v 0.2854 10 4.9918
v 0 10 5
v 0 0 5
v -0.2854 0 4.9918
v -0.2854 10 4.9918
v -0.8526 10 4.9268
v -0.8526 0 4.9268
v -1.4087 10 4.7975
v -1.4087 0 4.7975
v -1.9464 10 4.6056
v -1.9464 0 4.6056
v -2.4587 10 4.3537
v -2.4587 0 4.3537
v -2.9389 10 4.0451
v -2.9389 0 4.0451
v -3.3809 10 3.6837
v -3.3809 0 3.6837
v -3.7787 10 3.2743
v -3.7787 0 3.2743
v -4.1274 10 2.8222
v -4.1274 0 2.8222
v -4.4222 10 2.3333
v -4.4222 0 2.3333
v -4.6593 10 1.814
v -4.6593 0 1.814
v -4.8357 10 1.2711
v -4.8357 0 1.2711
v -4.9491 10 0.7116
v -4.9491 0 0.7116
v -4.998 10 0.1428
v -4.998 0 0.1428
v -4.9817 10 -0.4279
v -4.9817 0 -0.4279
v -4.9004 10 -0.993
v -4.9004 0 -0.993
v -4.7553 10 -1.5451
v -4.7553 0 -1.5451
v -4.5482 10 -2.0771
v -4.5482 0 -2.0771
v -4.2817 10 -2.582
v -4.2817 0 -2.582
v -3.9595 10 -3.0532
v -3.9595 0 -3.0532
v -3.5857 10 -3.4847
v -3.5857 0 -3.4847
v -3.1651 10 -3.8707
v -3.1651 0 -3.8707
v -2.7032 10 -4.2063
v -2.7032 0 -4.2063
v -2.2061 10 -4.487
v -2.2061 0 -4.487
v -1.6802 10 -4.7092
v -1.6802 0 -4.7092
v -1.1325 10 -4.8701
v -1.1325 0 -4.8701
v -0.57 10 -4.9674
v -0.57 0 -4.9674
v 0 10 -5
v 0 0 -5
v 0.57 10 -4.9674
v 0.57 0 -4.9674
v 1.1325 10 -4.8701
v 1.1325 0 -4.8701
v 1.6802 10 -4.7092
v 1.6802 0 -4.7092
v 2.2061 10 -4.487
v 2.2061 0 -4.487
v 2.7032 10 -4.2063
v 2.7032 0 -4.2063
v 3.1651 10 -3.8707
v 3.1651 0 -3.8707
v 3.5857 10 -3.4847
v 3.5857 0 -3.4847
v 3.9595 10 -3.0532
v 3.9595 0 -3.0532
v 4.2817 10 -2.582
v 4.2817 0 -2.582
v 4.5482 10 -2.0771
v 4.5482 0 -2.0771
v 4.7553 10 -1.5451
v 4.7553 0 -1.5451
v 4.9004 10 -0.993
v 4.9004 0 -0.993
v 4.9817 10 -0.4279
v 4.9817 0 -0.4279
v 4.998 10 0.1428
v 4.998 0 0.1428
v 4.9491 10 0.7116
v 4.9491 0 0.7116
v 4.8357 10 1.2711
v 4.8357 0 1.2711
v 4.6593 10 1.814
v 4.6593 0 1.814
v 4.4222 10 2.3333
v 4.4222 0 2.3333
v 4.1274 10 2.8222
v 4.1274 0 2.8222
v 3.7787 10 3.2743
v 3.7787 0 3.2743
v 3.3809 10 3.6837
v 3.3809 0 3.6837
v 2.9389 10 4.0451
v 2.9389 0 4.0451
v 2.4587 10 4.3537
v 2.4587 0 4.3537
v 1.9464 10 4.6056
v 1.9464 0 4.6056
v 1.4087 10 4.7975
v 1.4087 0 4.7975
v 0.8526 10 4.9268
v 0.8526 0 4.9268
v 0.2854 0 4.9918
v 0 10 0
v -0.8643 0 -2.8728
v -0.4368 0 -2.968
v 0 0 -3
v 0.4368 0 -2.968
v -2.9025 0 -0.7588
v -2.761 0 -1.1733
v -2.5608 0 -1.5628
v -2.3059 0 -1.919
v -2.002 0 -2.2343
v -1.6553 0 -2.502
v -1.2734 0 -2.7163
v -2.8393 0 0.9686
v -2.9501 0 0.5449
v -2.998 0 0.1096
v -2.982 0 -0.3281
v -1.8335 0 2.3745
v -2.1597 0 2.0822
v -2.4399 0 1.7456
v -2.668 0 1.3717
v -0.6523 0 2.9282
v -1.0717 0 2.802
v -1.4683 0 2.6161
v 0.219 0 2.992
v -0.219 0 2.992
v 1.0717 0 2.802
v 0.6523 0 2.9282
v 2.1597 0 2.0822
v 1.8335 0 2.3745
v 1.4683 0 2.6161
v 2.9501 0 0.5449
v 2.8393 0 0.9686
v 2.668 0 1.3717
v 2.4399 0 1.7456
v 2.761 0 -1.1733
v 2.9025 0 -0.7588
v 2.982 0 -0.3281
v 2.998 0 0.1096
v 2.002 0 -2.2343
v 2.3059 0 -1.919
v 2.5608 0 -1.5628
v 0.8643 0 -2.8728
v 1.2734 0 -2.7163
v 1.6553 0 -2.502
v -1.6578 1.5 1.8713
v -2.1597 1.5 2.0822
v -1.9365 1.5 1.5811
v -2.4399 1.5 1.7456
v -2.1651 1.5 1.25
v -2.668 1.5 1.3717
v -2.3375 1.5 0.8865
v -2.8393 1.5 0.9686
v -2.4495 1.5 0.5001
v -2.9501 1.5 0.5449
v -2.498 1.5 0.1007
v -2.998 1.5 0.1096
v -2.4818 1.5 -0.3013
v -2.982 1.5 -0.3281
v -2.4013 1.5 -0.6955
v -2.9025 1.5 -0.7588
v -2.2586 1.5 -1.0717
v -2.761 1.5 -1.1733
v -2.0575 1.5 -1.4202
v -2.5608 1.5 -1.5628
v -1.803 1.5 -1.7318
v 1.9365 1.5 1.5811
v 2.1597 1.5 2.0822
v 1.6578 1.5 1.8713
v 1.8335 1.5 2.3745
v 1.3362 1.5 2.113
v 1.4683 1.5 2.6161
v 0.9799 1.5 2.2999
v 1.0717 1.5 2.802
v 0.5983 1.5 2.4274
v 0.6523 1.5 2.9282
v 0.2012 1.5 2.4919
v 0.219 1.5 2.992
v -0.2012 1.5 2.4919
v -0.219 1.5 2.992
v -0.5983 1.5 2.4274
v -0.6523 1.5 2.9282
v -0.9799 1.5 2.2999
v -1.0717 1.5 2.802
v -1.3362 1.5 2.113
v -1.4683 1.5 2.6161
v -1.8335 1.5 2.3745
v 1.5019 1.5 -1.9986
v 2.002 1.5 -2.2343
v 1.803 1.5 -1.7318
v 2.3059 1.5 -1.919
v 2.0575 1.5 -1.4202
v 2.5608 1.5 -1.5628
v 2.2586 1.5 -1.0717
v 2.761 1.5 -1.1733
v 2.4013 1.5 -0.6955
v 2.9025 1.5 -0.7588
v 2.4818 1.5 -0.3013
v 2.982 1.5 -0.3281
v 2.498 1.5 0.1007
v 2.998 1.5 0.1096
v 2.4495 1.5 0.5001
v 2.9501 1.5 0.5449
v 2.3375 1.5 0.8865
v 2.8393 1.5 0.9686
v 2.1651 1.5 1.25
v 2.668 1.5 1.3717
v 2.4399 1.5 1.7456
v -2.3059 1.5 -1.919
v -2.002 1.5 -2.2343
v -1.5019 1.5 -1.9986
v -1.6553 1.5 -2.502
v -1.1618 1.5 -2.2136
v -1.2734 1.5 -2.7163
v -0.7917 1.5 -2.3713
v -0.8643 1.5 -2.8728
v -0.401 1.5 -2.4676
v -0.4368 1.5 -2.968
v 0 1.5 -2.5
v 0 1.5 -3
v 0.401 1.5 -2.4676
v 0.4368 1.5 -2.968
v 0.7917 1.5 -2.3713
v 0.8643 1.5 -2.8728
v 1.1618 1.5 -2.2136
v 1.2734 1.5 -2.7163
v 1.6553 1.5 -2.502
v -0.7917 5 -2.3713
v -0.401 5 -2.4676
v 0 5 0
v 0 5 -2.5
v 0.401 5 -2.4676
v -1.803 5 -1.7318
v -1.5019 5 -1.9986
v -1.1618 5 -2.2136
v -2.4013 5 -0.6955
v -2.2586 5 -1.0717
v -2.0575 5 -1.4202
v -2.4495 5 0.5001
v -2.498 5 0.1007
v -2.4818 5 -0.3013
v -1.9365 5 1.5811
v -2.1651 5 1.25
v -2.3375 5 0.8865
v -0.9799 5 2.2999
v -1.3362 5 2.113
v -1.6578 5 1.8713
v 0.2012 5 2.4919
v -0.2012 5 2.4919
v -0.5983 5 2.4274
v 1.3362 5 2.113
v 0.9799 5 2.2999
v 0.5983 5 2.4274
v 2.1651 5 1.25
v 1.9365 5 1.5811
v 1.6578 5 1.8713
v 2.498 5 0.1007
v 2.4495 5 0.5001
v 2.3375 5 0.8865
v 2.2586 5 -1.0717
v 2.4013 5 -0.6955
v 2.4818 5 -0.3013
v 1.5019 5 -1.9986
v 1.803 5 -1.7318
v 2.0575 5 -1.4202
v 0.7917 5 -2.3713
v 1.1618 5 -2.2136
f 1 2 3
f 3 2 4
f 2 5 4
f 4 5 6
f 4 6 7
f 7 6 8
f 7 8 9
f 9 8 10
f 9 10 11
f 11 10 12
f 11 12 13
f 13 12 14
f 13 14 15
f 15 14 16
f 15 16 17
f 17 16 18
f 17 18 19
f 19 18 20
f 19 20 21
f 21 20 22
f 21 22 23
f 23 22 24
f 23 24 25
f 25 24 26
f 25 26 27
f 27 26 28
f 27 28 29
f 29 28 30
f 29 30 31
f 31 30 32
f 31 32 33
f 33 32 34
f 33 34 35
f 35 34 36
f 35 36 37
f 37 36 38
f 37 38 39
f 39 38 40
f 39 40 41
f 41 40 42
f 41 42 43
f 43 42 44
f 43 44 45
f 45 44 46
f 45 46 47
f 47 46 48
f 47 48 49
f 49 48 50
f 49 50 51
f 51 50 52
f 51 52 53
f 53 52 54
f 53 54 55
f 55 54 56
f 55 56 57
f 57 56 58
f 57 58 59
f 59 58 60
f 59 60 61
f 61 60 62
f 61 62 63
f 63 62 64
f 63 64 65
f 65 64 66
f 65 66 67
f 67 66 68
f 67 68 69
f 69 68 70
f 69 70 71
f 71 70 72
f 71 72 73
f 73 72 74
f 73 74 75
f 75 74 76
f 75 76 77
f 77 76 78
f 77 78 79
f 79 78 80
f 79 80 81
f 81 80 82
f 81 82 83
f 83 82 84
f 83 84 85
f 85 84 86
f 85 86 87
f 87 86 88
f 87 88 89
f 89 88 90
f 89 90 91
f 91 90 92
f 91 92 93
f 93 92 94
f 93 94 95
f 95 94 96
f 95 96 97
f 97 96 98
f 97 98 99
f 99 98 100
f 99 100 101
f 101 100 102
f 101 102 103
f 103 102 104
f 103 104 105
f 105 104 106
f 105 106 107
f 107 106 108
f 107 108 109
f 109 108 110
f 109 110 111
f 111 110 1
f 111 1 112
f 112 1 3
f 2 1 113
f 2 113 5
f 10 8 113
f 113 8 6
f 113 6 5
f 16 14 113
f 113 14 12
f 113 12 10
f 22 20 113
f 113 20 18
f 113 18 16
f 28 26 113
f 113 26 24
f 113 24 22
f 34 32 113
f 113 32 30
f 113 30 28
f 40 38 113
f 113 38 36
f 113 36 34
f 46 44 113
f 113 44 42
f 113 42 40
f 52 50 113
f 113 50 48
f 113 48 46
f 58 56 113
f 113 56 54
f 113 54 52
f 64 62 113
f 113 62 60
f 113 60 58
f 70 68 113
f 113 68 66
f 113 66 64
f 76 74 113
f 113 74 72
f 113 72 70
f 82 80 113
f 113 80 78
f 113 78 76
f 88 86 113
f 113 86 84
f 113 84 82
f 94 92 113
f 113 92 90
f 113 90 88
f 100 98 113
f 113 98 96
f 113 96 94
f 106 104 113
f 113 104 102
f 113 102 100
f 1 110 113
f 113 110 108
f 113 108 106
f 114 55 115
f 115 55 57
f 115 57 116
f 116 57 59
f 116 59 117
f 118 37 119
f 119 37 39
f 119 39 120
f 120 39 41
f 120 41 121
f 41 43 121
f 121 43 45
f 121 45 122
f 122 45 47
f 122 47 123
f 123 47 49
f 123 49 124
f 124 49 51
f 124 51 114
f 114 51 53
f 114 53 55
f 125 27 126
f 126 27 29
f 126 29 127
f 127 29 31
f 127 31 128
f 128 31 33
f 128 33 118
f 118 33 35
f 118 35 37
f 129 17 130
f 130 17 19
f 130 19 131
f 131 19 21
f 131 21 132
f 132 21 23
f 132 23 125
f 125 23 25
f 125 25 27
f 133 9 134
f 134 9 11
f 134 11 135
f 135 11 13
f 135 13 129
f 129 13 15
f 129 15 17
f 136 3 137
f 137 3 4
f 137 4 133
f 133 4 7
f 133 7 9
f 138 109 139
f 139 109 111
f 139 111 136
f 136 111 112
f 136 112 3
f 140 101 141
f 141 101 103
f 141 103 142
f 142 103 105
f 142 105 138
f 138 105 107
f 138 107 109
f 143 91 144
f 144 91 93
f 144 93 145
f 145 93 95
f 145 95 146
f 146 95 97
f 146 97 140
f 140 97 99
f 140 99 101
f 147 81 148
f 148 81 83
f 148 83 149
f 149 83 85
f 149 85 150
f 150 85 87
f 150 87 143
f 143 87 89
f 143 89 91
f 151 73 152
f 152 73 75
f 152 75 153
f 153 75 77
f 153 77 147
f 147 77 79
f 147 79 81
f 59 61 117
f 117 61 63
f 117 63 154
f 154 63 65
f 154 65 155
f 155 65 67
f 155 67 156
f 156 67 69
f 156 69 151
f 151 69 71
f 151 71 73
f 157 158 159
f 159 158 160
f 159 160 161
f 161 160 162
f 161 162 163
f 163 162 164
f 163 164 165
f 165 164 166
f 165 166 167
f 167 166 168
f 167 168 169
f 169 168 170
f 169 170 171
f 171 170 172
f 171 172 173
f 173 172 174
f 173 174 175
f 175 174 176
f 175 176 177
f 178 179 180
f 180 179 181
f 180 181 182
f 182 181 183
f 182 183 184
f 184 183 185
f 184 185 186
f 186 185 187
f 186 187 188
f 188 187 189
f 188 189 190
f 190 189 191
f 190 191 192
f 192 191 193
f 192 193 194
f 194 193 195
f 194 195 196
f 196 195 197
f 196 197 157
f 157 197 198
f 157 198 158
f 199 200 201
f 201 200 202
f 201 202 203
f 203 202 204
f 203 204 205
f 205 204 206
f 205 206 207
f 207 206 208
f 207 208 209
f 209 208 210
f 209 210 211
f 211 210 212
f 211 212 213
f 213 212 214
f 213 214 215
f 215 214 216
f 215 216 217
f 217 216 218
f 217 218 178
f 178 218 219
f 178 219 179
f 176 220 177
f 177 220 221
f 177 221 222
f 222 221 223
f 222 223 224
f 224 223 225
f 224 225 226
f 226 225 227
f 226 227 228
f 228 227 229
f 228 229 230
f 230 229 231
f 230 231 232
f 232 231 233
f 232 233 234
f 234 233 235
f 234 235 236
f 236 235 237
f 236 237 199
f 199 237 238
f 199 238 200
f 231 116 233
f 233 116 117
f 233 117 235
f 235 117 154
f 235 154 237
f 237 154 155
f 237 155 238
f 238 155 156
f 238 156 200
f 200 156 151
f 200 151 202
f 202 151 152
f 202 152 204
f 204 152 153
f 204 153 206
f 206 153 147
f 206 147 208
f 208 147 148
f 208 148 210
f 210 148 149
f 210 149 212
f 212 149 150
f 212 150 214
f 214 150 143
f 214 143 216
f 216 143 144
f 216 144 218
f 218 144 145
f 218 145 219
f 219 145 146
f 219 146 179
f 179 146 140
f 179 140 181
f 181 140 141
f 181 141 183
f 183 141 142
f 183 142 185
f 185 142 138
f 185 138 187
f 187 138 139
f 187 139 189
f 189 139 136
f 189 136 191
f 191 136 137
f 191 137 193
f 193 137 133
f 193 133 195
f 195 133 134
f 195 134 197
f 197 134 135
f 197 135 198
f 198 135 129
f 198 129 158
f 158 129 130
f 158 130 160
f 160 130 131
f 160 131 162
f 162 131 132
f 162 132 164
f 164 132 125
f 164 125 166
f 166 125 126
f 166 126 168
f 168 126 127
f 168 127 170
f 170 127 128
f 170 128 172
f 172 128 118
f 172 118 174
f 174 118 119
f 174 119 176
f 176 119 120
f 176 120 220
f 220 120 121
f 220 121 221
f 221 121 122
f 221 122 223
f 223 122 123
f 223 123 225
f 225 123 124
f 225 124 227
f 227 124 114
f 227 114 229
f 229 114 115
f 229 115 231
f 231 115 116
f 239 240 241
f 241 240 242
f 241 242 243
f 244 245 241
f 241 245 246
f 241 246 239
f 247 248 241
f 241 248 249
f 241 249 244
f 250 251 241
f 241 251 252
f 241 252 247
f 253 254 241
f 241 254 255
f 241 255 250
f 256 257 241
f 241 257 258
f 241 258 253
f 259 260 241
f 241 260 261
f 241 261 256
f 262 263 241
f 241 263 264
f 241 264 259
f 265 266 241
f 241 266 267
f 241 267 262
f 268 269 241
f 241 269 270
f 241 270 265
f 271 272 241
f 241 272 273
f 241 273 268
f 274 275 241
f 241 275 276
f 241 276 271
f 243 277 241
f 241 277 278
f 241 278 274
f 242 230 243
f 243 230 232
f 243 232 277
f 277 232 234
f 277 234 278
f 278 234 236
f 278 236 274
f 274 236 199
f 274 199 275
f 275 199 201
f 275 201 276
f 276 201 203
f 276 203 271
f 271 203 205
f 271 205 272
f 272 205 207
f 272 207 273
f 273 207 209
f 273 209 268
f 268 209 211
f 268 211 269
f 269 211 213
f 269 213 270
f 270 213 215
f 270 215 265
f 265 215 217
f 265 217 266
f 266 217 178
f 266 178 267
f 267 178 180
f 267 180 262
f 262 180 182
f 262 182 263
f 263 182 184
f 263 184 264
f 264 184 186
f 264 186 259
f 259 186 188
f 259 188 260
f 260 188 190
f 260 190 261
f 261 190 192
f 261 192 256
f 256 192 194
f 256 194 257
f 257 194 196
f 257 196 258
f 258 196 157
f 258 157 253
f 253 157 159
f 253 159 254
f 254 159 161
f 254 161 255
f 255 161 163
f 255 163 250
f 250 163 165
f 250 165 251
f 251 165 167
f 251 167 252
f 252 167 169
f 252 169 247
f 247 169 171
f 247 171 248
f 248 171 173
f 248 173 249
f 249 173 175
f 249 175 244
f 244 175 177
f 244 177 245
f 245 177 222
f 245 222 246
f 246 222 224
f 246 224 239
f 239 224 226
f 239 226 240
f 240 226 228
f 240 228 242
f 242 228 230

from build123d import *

# Parameters (mm, degrees)
SKETCH1_R           = 5
BOSS_EXTRUDE1_DEPTH = 10
SKETCH2_R           = 2.5
CUT_EXTRUDE1_DEPTH  = 5
SKETCH3_R           = 3
CUT_EXTRUDE2_DEPTH  = 1.5


with BuildPart() as part:
    # Sketch1 → Boss-Extrude1 (new body)
    with BuildSketch(Plane(origin=(0, 0, 0), x_dir=(1, 0, 0), z_dir=(0, 1, 0))):
        Circle(SKETCH1_R)
    extrude(amount=BOSS_EXTRUDE1_DEPTH)

    # Sketch2 → Cut-Extrude1 (cut)
    with BuildSketch(Plane.XZ):
        Circle(SKETCH2_R)
    extrude(amount=-CUT_EXTRUDE1_DEPTH, mode=Mode.SUBTRACT)

    # Sketch3 → Cut-Extrude2 (cut)
    with BuildSketch(Plane.XZ):
        Circle(SKETCH3_R)
    extrude(amount=-CUT_EXTRUDE2_DEPTH, mode=Mode.SUBTRACT)


solid = part.part
